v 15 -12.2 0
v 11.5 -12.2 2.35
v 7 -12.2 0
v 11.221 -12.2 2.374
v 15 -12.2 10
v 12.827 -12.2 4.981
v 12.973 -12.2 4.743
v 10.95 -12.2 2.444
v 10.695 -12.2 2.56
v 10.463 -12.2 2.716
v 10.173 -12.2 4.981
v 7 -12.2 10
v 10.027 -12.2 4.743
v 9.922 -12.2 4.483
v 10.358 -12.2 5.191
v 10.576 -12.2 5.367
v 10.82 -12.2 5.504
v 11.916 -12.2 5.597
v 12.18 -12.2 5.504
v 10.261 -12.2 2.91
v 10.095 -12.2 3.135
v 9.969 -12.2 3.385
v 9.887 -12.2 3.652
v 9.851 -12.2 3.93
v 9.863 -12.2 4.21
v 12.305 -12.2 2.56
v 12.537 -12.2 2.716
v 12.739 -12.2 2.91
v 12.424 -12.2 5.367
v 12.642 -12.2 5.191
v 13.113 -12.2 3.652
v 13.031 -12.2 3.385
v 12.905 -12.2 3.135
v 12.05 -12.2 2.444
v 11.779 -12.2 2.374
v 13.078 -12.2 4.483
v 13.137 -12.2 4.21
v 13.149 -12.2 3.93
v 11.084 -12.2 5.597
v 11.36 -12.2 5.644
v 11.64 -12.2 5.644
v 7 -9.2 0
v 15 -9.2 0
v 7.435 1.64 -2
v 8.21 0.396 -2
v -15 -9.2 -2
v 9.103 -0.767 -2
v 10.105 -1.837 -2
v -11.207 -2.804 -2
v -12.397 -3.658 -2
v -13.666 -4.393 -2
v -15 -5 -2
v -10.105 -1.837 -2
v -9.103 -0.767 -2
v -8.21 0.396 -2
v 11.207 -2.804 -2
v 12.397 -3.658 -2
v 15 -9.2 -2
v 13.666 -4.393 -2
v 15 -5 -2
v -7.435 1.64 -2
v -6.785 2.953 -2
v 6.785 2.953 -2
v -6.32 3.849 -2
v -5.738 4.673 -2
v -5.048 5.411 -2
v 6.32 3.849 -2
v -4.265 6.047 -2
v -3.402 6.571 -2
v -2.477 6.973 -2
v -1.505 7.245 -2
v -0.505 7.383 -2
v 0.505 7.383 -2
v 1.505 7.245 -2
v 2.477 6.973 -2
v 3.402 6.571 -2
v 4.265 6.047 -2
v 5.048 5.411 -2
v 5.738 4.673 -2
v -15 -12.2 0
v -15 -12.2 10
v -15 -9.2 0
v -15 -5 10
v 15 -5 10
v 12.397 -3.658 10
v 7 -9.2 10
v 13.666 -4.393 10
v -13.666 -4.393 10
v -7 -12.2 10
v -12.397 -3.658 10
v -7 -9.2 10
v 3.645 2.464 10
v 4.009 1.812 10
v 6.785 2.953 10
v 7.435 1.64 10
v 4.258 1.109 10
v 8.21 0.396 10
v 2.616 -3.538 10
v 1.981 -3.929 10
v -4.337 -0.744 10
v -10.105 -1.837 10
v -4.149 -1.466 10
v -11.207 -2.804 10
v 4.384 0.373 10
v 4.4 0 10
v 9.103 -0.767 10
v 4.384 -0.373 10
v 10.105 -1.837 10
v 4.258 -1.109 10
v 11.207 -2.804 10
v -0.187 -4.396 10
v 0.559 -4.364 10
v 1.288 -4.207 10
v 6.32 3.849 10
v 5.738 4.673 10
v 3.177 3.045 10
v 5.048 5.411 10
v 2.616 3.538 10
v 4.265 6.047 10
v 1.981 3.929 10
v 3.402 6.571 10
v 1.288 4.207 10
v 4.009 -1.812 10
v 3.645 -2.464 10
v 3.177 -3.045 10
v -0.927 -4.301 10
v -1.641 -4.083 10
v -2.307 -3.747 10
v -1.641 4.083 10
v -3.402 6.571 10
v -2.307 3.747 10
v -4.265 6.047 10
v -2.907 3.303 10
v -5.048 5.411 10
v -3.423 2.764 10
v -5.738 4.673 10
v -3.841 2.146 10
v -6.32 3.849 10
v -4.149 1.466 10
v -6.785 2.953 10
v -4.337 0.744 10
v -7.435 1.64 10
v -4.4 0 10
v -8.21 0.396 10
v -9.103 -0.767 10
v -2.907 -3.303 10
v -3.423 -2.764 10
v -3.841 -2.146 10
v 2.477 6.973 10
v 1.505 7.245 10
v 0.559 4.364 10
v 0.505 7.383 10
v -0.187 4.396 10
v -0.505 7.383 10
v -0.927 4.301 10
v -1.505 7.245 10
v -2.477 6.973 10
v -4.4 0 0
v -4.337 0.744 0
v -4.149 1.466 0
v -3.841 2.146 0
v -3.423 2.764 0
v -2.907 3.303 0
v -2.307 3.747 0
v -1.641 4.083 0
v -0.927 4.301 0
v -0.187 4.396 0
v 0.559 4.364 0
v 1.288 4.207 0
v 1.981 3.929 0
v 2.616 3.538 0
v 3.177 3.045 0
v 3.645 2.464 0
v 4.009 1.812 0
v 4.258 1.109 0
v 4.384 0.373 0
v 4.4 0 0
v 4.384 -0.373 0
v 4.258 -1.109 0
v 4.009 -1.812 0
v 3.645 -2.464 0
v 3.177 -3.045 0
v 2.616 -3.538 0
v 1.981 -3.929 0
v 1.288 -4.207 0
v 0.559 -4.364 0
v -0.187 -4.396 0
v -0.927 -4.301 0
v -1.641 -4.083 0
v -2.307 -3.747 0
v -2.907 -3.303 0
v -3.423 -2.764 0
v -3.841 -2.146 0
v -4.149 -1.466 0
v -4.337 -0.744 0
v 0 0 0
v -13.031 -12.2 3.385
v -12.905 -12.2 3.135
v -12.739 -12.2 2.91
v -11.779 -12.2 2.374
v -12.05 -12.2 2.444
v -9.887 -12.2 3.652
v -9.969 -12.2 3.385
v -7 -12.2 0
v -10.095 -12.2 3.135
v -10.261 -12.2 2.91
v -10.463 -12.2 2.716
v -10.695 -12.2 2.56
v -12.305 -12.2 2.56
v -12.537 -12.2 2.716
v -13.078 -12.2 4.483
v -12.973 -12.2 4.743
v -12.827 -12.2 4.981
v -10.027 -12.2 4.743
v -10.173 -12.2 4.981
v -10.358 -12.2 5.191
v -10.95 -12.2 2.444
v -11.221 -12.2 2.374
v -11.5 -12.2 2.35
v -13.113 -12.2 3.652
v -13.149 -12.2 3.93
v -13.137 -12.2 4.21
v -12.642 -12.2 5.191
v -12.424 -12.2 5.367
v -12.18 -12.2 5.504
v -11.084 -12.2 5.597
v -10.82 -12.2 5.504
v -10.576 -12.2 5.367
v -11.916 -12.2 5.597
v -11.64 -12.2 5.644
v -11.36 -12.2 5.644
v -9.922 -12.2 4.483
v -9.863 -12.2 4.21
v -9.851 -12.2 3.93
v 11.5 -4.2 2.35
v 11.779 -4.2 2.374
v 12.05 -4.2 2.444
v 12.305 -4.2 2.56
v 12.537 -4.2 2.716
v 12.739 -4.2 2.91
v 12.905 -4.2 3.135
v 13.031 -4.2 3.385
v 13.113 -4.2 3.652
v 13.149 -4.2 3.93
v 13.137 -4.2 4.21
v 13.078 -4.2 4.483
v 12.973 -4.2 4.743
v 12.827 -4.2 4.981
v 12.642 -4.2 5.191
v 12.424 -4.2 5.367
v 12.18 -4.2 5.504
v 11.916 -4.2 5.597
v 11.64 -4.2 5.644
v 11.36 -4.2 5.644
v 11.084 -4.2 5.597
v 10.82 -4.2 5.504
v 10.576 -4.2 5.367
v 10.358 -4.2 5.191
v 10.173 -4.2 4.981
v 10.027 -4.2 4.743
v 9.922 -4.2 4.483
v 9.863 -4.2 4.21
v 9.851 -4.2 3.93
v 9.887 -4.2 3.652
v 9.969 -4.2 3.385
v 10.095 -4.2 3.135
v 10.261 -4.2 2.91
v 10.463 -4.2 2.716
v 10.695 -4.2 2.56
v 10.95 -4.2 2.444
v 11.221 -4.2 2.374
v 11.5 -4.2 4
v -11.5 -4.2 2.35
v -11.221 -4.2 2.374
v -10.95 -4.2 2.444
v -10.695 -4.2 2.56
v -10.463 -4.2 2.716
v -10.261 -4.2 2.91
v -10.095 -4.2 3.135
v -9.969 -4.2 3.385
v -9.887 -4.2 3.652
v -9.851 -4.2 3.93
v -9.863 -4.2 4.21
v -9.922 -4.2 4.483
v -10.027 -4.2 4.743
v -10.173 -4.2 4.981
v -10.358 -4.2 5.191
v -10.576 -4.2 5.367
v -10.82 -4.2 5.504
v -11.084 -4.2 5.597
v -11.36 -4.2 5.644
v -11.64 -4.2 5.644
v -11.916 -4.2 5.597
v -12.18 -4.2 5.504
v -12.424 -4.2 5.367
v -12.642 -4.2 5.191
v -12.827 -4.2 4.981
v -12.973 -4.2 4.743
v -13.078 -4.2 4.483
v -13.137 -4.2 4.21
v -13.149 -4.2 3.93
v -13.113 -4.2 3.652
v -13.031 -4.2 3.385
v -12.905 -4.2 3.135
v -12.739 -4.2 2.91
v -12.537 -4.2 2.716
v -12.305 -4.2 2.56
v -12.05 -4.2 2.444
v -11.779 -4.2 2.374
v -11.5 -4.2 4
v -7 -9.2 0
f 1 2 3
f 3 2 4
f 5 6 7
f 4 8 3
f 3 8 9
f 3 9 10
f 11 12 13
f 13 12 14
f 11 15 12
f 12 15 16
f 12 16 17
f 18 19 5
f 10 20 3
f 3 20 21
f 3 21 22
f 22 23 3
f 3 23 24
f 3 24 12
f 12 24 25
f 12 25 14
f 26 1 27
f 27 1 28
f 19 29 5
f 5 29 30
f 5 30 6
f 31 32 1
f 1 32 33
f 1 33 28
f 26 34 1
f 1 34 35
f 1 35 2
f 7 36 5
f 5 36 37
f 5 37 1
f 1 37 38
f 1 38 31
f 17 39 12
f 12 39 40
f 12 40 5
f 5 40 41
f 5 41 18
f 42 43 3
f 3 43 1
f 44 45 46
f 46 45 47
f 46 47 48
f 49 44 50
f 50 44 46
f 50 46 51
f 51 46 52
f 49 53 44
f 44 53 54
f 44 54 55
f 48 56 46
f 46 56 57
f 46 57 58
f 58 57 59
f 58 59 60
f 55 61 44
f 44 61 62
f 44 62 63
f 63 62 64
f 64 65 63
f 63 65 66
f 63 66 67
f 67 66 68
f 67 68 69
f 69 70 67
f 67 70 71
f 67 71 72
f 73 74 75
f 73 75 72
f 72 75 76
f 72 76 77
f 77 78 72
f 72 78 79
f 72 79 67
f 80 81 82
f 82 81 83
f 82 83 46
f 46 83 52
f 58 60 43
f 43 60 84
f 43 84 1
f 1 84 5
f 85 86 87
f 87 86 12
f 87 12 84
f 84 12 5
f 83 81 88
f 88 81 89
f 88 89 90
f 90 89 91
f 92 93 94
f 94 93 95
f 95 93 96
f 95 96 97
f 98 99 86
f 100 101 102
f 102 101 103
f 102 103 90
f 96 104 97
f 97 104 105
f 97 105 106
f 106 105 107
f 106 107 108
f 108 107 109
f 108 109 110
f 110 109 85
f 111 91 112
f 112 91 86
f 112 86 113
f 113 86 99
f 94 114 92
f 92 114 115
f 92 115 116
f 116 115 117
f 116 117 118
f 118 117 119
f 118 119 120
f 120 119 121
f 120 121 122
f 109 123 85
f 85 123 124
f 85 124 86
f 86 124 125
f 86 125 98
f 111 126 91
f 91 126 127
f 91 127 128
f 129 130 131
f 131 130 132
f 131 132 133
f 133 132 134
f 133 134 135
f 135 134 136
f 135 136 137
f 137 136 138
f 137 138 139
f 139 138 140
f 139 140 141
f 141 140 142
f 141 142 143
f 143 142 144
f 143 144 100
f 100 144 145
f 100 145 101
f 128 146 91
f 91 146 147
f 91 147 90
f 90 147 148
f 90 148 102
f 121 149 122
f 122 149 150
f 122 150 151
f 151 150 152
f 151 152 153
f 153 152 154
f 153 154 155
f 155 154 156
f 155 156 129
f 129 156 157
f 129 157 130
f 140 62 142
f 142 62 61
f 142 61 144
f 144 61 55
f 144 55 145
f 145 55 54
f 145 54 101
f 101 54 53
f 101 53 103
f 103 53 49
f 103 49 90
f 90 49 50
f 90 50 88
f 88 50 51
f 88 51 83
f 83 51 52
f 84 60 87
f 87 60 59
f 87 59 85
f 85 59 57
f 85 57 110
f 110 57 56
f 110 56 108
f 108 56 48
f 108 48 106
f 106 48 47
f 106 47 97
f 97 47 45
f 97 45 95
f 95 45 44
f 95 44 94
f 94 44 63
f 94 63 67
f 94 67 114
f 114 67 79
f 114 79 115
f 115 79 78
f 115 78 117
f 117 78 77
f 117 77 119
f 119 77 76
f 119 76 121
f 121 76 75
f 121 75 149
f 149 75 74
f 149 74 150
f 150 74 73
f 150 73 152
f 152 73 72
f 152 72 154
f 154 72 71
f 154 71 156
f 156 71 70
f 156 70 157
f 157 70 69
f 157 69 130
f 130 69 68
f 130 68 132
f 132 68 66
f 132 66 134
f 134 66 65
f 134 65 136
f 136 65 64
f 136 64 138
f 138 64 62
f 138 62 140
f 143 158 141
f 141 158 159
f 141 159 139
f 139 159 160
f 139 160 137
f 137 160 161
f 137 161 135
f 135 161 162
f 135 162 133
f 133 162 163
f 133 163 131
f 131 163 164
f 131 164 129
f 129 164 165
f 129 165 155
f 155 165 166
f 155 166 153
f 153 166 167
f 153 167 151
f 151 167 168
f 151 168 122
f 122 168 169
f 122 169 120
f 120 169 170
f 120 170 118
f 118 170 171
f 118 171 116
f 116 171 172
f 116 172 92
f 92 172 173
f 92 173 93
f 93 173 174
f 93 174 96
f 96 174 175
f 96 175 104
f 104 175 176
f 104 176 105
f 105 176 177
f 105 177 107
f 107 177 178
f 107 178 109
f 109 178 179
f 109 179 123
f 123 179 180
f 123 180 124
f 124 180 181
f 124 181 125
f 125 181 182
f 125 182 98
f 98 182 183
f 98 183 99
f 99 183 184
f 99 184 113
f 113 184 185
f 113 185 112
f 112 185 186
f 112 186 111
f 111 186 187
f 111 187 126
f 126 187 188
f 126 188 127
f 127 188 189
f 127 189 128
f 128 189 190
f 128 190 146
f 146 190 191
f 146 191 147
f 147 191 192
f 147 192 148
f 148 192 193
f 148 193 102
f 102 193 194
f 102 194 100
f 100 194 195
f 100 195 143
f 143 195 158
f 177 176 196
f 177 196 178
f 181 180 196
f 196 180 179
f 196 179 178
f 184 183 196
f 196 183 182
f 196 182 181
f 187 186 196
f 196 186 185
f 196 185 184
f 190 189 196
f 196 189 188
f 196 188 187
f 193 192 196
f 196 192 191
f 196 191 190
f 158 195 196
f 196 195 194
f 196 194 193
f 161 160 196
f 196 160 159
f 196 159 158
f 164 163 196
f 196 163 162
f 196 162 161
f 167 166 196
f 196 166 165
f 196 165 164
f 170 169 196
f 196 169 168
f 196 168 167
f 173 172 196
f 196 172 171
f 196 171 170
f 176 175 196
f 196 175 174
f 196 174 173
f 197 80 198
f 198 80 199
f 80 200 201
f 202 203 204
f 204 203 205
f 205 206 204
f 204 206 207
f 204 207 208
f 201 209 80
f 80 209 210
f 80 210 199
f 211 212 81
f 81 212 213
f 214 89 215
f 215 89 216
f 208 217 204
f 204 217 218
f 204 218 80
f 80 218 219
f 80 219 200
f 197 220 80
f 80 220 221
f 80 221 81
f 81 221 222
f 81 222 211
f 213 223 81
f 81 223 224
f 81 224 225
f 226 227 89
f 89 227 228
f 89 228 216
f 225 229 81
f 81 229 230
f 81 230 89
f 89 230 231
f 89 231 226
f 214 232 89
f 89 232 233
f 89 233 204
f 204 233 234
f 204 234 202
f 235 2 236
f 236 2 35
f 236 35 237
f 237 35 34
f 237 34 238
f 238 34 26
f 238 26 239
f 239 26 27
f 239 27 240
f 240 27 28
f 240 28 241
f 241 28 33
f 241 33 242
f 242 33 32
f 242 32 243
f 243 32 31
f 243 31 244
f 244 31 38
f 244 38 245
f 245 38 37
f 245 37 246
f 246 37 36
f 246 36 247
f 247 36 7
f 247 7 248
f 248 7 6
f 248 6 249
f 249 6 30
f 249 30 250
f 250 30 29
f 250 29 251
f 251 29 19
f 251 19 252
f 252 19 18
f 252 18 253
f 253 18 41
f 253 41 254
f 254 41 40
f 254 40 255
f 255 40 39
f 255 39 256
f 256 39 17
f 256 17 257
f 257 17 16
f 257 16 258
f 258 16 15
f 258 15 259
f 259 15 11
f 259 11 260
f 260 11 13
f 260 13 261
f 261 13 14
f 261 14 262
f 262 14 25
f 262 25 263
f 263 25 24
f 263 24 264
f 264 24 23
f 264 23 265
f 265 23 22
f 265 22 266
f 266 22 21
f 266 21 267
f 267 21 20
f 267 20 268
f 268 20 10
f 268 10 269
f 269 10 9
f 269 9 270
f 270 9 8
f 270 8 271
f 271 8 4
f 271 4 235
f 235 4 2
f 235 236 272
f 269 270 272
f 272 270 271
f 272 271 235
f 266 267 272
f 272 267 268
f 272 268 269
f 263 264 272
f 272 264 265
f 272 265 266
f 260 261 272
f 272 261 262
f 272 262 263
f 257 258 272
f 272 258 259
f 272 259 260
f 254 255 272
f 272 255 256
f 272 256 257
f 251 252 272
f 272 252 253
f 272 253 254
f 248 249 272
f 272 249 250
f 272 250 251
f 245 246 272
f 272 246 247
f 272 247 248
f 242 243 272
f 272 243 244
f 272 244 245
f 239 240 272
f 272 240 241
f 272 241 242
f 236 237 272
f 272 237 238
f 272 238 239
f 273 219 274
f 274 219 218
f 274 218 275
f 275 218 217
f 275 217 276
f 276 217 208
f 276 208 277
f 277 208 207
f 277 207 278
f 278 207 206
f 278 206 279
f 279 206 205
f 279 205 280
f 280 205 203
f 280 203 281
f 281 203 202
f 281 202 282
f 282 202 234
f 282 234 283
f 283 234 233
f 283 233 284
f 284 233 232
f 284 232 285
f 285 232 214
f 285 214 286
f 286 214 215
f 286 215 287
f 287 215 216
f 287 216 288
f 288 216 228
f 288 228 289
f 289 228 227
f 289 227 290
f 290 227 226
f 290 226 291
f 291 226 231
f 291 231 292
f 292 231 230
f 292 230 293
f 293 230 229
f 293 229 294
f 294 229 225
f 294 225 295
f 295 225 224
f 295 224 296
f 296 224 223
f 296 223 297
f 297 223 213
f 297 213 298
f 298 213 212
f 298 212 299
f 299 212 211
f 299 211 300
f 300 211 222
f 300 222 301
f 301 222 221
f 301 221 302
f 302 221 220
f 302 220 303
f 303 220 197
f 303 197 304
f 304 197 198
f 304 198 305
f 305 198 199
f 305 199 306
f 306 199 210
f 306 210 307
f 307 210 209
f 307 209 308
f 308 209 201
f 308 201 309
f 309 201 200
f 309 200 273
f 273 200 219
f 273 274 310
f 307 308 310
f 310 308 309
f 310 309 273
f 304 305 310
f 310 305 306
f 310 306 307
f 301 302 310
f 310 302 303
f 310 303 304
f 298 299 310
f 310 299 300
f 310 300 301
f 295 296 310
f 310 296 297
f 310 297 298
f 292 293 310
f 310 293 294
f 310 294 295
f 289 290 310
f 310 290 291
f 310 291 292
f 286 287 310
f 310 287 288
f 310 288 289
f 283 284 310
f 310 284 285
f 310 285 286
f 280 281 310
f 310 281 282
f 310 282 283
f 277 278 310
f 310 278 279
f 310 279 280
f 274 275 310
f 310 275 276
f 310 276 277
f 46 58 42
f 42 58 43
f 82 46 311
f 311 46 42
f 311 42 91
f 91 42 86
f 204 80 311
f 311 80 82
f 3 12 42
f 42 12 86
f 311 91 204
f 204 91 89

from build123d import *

# Parameters (mm, degrees)
SKETCH1_R               = 4.4
BOSS_EXTRUDE1_DEPTH     = 10
SKETCH1_2_R             = 4.4
BOSS_EXTRUDE2_DEPTH     = 2
SKETCH3_W               = 30
SKETCH3_H               = 12
BOSS_EXTRUDE4_DEPTH     = 7.2
CUT_EXTRUDE2_START      = -12.2
SKETCH2_R               = 1.65
CUT_EXTRUDE2_DEPTH      = 8
SKETCH5_W               = 30
SKETCH5_H               = 3
CUT_EXTRUDE3_DEPTH      = 23.756098084
CUT_EXTRUDE3_DEPTH_BACK = 2
SKETCH6_W               = 14
SKETCH6_H               = 3
CUT_EXTRUDE4_DEPTH      = 23.756098084
CUT_EXTRUDE4_DEPTH_BACK = 23.756098084


with BuildPart() as part:
    # Sketch1 → Boss-Extrude1 (new body)
    with BuildSketch(Plane.XY):
        with BuildLine():
            Line((-15, -5), (15, -5))
            ThreePointArc((15, -5), (10.104984149, -1.836764635), (6.785093744, 2.953388374))
            ThreePointArc((6.785093744, 2.953388374), (0, 7.4), (-6.785093744, 2.953388374))
            ThreePointArc((-6.785093744, 2.953388374), (-10.104984149, -1.836764635), (-15, -5))
        make_face()
        Circle(SKETCH1_R, mode=Mode.SUBTRACT)
    extrude(amount=BOSS_EXTRUDE1_DEPTH)

    # Sketch1<2> → Boss-Extrude2 (add)
    with BuildSketch(Plane.XY):
        with BuildLine():
            ThreePointArc((-6.785093744, 2.953388374), (0, 7.4), (6.785093744, 2.953388374))
            ThreePointArc((6.785093744, 2.953388374), (10.104984149, -1.836764635), (15, -5))
            Line((15, -5), (-15, -5))
            ThreePointArc((-15, -5), (-10.104984149, -1.836764635), (-6.785093744, 2.953388374))
        make_face()
        Circle(SKETCH1_2_R, mode=Mode.SUBTRACT)
        Circle(SKETCH1_2_R)
    extrude(amount=-BOSS_EXTRUDE2_DEPTH)

    # Sketch3 → Boss-Extrude4 (add)
    with BuildSketch(Plane.XZ.offset(5)):
        with Locations((0, 4)):
            Rectangle(SKETCH3_W, SKETCH3_H)
    extrude(amount=BOSS_EXTRUDE4_DEPTH)

    # Sketch2 → Cut-Extrude2 (cut)
    with BuildSketch(Plane(origin=(0, 0, 0), x_dir=(1, 0, 0), z_dir=(0, 1, 0)).offset(CUT_EXTRUDE2_START)):
        with Locations(Location((-11.5, -4, 0), (0, 0, 90))):
            Circle(SKETCH2_R)
        with Locations(Location((11.5, -4, 0), (0, 0, 90))):
            Circle(SKETCH2_R)
    extrude(amount=CUT_EXTRUDE2_DEPTH, mode=Mode.SUBTRACT)

    # Sketch5 → Cut-Extrude3 (cut, two sides)
    with BuildSketch(Plane(origin=(0, 0, -2), x_dir=(-1, 0, 0), z_dir=(0, 0, -1))) as cut_extrude3_sk:
        with Locations((0, -10.7)):
            Rectangle(SKETCH5_W, SKETCH5_H)
    extrude(amount=CUT_EXTRUDE3_DEPTH, mode=Mode.SUBTRACT)
    extrude(cut_extrude3_sk.sketch, amount=-CUT_EXTRUDE3_DEPTH_BACK, mode=Mode.SUBTRACT)

    # Sketch6 → Cut-Extrude4 (cut, two sides)
    with BuildSketch(Plane.XY.offset(10)) as cut_extrude4_sk:
        with Locations((0, -10.7)):
            Rectangle(SKETCH6_W, SKETCH6_H)
    extrude(amount=CUT_EXTRUDE4_DEPTH, mode=Mode.SUBTRACT)
    extrude(cut_extrude4_sk.sketch, amount=-CUT_EXTRUDE4_DEPTH_BACK, mode=Mode.SUBTRACT)


solid = part.part
